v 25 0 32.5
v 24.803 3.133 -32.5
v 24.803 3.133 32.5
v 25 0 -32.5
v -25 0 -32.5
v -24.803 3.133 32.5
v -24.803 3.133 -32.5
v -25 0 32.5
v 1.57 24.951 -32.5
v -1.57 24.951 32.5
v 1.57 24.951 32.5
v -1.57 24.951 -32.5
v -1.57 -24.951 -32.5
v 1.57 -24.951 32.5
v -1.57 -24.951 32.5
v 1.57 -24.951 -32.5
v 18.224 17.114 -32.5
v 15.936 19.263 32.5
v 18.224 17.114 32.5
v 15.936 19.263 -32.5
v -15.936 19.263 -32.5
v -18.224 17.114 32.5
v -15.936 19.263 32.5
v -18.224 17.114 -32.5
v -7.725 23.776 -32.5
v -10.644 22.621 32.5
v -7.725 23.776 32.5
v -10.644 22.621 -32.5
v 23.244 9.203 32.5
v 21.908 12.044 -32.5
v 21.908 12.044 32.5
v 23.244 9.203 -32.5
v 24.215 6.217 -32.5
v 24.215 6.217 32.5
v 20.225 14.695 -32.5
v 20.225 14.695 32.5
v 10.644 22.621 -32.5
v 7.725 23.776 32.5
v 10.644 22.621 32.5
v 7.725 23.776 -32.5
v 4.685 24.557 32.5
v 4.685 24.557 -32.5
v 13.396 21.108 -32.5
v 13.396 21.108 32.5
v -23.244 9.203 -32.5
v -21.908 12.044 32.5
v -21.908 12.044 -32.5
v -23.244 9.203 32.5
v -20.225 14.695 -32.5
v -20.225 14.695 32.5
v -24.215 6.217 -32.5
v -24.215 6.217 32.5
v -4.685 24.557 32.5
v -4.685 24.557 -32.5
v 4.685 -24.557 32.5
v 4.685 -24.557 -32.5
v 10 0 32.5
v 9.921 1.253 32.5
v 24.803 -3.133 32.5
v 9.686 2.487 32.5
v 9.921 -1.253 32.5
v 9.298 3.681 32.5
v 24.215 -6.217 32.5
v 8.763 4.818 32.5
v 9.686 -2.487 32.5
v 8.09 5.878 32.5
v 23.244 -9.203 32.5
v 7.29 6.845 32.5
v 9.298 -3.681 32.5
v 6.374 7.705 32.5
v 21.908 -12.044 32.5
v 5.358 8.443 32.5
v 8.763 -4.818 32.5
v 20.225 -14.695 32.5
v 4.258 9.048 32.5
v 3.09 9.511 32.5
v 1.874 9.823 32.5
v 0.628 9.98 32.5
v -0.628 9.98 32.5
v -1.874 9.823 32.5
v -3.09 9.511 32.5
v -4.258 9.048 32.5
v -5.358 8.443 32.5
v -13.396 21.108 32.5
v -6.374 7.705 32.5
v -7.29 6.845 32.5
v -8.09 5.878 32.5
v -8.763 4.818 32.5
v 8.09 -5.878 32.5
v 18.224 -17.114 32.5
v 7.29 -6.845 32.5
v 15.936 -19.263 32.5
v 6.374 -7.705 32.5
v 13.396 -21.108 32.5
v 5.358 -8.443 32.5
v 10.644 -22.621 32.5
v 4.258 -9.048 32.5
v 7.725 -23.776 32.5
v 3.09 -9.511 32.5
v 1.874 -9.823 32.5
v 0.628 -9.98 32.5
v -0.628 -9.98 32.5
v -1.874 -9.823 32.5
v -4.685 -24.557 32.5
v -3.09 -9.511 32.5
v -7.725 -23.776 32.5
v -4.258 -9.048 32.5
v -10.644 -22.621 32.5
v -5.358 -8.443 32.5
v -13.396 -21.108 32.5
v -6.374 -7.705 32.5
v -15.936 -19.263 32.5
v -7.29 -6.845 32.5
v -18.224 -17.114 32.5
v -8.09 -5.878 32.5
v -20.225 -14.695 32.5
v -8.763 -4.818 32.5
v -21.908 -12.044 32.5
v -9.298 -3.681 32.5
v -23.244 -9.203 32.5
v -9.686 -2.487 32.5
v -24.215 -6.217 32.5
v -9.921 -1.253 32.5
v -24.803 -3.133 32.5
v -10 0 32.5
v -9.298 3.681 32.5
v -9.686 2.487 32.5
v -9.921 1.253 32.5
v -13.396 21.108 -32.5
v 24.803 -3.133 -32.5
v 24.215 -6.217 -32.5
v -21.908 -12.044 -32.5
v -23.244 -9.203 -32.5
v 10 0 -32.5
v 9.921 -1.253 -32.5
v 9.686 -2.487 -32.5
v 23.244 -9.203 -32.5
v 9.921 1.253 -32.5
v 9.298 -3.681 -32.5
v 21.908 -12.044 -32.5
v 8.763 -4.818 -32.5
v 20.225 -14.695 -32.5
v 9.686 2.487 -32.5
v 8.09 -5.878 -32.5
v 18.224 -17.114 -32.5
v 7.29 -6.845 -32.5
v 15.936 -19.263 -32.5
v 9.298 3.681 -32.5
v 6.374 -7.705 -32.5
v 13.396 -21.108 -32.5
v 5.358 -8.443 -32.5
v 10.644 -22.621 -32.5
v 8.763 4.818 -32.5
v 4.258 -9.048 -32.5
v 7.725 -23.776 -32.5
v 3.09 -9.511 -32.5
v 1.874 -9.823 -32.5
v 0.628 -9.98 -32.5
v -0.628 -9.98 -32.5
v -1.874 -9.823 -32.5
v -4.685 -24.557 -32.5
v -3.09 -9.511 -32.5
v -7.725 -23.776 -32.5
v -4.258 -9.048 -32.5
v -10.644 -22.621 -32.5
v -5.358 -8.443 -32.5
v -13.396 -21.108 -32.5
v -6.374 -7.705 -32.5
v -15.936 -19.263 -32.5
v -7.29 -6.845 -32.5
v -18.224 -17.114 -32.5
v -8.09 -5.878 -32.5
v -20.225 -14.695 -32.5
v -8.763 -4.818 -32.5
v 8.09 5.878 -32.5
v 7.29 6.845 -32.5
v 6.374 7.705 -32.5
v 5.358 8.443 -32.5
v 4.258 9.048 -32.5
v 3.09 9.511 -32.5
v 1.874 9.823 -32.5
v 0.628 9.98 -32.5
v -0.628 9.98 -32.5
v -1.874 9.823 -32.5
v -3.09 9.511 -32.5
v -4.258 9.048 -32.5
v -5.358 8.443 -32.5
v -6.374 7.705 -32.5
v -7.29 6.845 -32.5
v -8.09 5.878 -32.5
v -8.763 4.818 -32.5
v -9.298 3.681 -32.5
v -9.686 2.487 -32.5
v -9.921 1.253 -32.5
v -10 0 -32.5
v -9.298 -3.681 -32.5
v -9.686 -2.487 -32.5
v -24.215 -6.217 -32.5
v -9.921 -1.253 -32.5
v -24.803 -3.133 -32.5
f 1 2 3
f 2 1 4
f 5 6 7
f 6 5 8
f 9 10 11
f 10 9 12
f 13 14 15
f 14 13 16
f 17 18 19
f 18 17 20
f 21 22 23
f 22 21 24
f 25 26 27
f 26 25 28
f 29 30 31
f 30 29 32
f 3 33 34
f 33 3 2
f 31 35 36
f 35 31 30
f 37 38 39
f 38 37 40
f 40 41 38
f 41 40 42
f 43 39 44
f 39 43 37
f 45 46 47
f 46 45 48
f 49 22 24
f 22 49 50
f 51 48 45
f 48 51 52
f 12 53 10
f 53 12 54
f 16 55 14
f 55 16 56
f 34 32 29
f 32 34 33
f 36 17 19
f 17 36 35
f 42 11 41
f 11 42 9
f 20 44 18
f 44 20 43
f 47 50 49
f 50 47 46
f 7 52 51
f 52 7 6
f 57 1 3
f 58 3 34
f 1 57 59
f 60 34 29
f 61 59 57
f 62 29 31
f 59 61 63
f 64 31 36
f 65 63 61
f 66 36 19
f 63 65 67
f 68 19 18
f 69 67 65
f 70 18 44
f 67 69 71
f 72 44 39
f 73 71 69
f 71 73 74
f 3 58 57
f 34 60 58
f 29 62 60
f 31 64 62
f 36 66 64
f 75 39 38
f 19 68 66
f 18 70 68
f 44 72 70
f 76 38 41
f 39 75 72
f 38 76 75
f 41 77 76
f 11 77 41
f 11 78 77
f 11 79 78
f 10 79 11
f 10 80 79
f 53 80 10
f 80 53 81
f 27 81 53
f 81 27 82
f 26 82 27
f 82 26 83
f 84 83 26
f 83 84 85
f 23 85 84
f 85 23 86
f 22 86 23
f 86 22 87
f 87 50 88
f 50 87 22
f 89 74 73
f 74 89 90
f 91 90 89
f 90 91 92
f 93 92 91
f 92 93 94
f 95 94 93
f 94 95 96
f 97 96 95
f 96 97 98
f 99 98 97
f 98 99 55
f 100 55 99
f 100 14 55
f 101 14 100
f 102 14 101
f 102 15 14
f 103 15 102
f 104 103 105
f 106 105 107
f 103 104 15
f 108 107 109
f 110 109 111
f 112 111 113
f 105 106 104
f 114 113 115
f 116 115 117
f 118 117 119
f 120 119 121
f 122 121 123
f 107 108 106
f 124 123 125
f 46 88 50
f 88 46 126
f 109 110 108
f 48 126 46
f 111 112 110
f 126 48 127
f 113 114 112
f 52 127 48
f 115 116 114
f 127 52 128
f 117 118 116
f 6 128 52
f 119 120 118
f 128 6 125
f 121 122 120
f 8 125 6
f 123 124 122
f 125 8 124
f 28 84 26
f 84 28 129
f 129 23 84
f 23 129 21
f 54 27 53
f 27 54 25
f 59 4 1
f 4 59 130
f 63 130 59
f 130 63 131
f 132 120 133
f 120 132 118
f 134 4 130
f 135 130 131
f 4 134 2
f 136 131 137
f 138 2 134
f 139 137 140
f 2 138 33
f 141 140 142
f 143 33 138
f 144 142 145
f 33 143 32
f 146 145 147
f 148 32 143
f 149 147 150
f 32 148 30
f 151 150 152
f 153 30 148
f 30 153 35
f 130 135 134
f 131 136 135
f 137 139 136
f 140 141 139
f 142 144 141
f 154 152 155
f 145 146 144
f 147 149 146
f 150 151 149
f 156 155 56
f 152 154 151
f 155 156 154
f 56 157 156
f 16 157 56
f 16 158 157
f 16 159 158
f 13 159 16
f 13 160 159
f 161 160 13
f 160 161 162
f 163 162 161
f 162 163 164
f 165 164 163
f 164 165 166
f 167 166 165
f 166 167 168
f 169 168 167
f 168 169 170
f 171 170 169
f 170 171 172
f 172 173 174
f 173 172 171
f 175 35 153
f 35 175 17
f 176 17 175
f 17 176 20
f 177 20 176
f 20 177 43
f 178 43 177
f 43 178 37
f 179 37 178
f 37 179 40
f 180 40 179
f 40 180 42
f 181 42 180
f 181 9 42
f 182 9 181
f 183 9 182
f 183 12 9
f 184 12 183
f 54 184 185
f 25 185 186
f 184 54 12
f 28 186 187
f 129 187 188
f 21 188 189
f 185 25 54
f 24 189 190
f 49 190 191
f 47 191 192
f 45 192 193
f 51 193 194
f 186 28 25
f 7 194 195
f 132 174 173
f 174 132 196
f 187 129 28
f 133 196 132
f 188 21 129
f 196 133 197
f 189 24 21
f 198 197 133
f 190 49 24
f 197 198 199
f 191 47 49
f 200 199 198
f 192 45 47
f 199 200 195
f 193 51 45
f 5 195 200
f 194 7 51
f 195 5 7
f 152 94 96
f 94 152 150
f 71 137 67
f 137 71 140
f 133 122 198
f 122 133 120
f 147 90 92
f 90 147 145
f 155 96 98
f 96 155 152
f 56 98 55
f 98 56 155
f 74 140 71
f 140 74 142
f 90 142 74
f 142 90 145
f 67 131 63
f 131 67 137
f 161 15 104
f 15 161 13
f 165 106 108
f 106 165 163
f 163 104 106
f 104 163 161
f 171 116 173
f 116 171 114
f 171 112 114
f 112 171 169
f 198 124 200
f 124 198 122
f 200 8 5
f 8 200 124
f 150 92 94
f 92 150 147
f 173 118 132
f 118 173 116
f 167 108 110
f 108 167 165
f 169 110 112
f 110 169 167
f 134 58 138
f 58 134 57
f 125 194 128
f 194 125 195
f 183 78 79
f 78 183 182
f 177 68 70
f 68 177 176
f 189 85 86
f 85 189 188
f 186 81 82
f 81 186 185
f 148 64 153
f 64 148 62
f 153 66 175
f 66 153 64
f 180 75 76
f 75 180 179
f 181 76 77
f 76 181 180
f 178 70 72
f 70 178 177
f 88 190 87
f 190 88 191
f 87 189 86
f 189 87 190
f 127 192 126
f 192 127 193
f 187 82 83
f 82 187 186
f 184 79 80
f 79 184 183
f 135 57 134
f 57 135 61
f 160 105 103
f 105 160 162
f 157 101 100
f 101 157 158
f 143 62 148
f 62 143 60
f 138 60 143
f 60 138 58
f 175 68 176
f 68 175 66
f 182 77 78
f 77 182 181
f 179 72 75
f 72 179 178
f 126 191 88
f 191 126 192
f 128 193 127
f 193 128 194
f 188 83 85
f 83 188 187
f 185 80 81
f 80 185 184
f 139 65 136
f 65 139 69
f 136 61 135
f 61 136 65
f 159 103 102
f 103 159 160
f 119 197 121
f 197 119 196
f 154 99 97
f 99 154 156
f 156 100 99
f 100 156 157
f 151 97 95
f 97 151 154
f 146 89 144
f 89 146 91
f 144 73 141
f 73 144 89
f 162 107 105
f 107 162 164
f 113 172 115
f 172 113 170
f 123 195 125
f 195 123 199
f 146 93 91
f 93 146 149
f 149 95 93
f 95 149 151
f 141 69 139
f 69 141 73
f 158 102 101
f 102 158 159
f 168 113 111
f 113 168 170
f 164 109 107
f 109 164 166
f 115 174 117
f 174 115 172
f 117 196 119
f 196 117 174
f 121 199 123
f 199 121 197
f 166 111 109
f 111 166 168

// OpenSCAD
$fn = 50;


difference() {
	union() {
		translate(v = [0, 0, -32.5000000000]) {
			cylinder(h = 65, r = 25.0000000000);
		}
	}
	union() {
		translate(v = [0, 0, -100.0000000000]) {
			cylinder(h = 200, r = 10);
		}
	}
}
